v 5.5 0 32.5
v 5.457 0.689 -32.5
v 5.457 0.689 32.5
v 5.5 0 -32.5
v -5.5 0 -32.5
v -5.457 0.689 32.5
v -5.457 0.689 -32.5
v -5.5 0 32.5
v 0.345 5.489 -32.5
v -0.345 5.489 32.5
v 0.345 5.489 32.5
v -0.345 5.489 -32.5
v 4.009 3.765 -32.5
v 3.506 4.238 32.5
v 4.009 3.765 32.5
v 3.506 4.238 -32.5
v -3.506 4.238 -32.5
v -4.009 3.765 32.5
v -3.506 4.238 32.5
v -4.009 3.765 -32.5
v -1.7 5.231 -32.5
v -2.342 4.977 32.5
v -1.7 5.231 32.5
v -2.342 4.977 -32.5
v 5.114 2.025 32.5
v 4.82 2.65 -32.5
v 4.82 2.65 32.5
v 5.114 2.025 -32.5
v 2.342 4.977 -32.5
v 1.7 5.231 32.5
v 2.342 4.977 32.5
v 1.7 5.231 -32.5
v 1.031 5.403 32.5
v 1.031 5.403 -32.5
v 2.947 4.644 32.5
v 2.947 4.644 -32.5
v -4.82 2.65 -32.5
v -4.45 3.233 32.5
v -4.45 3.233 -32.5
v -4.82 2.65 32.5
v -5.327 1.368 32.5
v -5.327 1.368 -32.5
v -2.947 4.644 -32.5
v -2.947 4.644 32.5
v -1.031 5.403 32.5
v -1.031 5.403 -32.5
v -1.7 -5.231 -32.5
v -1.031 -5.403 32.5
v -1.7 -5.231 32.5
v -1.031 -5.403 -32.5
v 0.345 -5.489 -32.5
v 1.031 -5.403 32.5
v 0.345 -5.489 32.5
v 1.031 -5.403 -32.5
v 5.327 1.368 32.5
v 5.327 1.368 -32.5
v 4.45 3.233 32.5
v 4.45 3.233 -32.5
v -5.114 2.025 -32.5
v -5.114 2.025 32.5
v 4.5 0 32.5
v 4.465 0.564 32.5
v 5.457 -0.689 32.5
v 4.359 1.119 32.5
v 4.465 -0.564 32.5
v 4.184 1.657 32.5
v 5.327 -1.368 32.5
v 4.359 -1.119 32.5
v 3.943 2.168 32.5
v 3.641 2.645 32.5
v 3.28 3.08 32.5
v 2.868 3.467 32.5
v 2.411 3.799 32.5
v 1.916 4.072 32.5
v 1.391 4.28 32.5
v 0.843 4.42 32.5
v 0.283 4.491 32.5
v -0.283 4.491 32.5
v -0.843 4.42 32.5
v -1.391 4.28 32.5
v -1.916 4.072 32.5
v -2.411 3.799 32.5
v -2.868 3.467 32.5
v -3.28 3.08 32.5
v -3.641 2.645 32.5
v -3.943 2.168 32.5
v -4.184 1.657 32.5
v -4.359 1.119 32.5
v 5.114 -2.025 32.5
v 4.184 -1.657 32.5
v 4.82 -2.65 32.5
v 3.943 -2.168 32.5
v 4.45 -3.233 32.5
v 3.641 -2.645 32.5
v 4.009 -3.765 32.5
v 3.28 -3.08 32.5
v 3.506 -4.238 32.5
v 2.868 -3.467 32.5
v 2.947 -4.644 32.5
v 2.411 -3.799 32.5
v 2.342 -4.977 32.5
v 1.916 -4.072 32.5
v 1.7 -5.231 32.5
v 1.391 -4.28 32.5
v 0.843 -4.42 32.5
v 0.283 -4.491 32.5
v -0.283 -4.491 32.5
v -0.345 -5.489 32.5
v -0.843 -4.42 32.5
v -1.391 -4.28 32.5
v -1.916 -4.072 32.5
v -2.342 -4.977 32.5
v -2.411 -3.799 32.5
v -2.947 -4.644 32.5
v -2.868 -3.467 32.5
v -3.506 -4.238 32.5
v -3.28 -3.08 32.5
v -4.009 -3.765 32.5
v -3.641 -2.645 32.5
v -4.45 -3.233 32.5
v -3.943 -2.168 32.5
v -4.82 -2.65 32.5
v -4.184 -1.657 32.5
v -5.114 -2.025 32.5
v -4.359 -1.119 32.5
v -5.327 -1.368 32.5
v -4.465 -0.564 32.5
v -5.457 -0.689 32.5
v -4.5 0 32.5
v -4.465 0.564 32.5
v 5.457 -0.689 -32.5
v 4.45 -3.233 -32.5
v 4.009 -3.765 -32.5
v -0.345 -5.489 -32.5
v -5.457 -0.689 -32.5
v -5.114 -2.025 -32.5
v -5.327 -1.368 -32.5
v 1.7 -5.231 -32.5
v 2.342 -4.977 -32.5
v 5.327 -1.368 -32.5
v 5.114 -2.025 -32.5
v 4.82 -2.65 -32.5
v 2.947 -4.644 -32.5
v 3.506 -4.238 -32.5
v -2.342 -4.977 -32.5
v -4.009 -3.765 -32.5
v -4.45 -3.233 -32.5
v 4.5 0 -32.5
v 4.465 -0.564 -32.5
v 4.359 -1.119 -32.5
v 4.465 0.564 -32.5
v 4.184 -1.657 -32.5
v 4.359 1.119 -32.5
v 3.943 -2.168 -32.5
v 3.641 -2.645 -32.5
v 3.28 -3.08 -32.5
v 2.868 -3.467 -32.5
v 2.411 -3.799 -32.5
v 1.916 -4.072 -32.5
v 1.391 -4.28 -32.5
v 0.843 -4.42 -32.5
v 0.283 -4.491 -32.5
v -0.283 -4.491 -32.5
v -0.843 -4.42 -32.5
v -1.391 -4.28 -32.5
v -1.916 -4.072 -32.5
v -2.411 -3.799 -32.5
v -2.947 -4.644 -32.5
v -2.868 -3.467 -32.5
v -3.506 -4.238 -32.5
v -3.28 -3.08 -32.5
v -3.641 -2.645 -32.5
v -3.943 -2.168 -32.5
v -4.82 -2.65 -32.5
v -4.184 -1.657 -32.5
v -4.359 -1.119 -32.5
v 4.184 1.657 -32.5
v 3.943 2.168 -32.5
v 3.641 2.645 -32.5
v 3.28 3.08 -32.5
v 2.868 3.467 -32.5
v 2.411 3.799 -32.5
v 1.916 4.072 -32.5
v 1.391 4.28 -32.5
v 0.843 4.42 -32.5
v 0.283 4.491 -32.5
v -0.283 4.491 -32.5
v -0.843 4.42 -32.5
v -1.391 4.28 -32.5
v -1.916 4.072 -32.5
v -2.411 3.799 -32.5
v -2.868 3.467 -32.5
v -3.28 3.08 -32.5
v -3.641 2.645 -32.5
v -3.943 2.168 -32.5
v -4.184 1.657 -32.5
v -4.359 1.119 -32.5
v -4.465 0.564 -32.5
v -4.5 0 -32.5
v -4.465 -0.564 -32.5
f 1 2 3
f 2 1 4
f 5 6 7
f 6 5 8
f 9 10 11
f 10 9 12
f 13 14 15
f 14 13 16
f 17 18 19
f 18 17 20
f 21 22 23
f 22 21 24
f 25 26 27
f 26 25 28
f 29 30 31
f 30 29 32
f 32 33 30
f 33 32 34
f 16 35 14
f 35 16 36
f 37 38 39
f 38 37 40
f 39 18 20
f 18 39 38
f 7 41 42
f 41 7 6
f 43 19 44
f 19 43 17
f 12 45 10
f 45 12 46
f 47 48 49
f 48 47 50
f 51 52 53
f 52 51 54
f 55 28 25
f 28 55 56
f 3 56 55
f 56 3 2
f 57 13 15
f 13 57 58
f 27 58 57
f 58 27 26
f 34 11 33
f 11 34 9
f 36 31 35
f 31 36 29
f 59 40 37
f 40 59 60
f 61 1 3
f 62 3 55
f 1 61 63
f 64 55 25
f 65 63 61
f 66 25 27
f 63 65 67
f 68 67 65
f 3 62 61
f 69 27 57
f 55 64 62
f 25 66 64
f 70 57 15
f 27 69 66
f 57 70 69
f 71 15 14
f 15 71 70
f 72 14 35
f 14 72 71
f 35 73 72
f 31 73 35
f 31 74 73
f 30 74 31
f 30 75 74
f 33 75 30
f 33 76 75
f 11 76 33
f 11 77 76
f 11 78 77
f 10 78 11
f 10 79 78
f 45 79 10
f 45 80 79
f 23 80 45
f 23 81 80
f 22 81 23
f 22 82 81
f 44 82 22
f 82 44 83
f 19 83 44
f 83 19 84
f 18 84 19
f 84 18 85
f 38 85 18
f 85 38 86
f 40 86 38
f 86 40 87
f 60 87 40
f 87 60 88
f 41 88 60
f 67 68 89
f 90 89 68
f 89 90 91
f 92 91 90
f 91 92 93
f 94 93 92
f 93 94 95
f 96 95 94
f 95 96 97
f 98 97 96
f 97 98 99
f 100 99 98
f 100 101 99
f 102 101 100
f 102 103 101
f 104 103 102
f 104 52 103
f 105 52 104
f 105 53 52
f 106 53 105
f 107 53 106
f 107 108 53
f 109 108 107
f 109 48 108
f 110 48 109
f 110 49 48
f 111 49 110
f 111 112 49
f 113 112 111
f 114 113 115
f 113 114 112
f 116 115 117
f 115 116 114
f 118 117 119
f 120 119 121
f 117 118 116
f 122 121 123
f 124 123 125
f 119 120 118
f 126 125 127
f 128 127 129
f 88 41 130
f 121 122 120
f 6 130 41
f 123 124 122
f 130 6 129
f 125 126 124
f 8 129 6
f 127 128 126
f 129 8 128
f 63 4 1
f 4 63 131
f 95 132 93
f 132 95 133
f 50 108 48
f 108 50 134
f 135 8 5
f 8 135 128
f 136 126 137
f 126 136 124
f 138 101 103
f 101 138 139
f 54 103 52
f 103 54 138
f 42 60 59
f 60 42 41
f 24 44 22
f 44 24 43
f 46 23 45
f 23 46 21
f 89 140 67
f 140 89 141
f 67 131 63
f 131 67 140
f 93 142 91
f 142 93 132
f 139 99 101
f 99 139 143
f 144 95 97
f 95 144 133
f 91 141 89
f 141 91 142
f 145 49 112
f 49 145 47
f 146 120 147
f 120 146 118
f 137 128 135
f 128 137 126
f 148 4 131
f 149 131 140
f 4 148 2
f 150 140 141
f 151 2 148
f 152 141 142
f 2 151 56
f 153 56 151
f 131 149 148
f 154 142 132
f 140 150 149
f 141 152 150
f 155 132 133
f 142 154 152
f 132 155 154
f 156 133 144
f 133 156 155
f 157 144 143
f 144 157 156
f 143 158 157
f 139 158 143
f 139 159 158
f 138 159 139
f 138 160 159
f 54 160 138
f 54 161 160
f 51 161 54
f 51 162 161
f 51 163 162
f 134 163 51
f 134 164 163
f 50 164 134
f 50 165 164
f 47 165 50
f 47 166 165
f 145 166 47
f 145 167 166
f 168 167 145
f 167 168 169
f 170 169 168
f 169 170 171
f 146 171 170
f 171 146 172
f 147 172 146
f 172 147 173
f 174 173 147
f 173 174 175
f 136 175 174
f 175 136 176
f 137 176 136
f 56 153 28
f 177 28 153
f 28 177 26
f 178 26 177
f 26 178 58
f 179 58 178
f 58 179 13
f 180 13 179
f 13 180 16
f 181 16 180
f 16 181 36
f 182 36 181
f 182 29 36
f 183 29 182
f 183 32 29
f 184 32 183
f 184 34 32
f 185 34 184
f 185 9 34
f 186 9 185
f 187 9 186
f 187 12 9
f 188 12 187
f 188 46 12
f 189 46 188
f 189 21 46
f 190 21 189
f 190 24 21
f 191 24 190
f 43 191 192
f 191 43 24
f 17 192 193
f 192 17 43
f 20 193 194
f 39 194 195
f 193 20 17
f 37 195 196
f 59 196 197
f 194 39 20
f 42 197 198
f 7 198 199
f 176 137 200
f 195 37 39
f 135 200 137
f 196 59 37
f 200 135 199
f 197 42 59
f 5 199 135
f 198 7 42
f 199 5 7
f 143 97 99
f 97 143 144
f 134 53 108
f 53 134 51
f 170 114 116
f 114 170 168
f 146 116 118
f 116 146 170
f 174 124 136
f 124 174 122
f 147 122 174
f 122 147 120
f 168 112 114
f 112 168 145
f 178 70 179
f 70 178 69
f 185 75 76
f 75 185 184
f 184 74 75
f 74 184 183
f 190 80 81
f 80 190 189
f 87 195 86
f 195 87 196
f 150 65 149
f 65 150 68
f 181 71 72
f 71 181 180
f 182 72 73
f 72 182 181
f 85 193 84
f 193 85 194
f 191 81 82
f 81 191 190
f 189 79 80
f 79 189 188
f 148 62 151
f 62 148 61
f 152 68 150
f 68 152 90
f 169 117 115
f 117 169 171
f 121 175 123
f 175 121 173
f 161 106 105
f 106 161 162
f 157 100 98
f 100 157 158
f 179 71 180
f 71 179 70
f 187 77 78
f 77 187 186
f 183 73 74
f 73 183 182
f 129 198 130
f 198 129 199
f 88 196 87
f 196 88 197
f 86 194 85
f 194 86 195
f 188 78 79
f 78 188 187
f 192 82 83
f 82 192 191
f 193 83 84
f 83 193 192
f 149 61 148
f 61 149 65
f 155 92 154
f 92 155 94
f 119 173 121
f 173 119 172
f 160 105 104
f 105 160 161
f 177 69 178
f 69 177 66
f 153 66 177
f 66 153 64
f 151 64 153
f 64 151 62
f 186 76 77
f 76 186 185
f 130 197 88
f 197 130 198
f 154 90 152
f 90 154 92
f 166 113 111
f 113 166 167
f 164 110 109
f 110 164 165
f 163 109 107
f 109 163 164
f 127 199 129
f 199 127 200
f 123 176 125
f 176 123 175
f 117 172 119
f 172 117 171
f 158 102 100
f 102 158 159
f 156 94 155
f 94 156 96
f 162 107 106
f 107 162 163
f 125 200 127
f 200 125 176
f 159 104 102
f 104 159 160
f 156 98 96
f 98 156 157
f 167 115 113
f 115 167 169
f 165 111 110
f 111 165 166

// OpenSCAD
$fn = 50;


difference() {
	union() {
		translate(v = [0, 0, -32.5000000000]) {
			cylinder(h = 65, r = 5.5000000000);
		}
	}
	union() {
		translate(v = [0, 0, -100.0000000000]) {
			cylinder(h = 200, r = 4.5000000000);
		}
	}
}
